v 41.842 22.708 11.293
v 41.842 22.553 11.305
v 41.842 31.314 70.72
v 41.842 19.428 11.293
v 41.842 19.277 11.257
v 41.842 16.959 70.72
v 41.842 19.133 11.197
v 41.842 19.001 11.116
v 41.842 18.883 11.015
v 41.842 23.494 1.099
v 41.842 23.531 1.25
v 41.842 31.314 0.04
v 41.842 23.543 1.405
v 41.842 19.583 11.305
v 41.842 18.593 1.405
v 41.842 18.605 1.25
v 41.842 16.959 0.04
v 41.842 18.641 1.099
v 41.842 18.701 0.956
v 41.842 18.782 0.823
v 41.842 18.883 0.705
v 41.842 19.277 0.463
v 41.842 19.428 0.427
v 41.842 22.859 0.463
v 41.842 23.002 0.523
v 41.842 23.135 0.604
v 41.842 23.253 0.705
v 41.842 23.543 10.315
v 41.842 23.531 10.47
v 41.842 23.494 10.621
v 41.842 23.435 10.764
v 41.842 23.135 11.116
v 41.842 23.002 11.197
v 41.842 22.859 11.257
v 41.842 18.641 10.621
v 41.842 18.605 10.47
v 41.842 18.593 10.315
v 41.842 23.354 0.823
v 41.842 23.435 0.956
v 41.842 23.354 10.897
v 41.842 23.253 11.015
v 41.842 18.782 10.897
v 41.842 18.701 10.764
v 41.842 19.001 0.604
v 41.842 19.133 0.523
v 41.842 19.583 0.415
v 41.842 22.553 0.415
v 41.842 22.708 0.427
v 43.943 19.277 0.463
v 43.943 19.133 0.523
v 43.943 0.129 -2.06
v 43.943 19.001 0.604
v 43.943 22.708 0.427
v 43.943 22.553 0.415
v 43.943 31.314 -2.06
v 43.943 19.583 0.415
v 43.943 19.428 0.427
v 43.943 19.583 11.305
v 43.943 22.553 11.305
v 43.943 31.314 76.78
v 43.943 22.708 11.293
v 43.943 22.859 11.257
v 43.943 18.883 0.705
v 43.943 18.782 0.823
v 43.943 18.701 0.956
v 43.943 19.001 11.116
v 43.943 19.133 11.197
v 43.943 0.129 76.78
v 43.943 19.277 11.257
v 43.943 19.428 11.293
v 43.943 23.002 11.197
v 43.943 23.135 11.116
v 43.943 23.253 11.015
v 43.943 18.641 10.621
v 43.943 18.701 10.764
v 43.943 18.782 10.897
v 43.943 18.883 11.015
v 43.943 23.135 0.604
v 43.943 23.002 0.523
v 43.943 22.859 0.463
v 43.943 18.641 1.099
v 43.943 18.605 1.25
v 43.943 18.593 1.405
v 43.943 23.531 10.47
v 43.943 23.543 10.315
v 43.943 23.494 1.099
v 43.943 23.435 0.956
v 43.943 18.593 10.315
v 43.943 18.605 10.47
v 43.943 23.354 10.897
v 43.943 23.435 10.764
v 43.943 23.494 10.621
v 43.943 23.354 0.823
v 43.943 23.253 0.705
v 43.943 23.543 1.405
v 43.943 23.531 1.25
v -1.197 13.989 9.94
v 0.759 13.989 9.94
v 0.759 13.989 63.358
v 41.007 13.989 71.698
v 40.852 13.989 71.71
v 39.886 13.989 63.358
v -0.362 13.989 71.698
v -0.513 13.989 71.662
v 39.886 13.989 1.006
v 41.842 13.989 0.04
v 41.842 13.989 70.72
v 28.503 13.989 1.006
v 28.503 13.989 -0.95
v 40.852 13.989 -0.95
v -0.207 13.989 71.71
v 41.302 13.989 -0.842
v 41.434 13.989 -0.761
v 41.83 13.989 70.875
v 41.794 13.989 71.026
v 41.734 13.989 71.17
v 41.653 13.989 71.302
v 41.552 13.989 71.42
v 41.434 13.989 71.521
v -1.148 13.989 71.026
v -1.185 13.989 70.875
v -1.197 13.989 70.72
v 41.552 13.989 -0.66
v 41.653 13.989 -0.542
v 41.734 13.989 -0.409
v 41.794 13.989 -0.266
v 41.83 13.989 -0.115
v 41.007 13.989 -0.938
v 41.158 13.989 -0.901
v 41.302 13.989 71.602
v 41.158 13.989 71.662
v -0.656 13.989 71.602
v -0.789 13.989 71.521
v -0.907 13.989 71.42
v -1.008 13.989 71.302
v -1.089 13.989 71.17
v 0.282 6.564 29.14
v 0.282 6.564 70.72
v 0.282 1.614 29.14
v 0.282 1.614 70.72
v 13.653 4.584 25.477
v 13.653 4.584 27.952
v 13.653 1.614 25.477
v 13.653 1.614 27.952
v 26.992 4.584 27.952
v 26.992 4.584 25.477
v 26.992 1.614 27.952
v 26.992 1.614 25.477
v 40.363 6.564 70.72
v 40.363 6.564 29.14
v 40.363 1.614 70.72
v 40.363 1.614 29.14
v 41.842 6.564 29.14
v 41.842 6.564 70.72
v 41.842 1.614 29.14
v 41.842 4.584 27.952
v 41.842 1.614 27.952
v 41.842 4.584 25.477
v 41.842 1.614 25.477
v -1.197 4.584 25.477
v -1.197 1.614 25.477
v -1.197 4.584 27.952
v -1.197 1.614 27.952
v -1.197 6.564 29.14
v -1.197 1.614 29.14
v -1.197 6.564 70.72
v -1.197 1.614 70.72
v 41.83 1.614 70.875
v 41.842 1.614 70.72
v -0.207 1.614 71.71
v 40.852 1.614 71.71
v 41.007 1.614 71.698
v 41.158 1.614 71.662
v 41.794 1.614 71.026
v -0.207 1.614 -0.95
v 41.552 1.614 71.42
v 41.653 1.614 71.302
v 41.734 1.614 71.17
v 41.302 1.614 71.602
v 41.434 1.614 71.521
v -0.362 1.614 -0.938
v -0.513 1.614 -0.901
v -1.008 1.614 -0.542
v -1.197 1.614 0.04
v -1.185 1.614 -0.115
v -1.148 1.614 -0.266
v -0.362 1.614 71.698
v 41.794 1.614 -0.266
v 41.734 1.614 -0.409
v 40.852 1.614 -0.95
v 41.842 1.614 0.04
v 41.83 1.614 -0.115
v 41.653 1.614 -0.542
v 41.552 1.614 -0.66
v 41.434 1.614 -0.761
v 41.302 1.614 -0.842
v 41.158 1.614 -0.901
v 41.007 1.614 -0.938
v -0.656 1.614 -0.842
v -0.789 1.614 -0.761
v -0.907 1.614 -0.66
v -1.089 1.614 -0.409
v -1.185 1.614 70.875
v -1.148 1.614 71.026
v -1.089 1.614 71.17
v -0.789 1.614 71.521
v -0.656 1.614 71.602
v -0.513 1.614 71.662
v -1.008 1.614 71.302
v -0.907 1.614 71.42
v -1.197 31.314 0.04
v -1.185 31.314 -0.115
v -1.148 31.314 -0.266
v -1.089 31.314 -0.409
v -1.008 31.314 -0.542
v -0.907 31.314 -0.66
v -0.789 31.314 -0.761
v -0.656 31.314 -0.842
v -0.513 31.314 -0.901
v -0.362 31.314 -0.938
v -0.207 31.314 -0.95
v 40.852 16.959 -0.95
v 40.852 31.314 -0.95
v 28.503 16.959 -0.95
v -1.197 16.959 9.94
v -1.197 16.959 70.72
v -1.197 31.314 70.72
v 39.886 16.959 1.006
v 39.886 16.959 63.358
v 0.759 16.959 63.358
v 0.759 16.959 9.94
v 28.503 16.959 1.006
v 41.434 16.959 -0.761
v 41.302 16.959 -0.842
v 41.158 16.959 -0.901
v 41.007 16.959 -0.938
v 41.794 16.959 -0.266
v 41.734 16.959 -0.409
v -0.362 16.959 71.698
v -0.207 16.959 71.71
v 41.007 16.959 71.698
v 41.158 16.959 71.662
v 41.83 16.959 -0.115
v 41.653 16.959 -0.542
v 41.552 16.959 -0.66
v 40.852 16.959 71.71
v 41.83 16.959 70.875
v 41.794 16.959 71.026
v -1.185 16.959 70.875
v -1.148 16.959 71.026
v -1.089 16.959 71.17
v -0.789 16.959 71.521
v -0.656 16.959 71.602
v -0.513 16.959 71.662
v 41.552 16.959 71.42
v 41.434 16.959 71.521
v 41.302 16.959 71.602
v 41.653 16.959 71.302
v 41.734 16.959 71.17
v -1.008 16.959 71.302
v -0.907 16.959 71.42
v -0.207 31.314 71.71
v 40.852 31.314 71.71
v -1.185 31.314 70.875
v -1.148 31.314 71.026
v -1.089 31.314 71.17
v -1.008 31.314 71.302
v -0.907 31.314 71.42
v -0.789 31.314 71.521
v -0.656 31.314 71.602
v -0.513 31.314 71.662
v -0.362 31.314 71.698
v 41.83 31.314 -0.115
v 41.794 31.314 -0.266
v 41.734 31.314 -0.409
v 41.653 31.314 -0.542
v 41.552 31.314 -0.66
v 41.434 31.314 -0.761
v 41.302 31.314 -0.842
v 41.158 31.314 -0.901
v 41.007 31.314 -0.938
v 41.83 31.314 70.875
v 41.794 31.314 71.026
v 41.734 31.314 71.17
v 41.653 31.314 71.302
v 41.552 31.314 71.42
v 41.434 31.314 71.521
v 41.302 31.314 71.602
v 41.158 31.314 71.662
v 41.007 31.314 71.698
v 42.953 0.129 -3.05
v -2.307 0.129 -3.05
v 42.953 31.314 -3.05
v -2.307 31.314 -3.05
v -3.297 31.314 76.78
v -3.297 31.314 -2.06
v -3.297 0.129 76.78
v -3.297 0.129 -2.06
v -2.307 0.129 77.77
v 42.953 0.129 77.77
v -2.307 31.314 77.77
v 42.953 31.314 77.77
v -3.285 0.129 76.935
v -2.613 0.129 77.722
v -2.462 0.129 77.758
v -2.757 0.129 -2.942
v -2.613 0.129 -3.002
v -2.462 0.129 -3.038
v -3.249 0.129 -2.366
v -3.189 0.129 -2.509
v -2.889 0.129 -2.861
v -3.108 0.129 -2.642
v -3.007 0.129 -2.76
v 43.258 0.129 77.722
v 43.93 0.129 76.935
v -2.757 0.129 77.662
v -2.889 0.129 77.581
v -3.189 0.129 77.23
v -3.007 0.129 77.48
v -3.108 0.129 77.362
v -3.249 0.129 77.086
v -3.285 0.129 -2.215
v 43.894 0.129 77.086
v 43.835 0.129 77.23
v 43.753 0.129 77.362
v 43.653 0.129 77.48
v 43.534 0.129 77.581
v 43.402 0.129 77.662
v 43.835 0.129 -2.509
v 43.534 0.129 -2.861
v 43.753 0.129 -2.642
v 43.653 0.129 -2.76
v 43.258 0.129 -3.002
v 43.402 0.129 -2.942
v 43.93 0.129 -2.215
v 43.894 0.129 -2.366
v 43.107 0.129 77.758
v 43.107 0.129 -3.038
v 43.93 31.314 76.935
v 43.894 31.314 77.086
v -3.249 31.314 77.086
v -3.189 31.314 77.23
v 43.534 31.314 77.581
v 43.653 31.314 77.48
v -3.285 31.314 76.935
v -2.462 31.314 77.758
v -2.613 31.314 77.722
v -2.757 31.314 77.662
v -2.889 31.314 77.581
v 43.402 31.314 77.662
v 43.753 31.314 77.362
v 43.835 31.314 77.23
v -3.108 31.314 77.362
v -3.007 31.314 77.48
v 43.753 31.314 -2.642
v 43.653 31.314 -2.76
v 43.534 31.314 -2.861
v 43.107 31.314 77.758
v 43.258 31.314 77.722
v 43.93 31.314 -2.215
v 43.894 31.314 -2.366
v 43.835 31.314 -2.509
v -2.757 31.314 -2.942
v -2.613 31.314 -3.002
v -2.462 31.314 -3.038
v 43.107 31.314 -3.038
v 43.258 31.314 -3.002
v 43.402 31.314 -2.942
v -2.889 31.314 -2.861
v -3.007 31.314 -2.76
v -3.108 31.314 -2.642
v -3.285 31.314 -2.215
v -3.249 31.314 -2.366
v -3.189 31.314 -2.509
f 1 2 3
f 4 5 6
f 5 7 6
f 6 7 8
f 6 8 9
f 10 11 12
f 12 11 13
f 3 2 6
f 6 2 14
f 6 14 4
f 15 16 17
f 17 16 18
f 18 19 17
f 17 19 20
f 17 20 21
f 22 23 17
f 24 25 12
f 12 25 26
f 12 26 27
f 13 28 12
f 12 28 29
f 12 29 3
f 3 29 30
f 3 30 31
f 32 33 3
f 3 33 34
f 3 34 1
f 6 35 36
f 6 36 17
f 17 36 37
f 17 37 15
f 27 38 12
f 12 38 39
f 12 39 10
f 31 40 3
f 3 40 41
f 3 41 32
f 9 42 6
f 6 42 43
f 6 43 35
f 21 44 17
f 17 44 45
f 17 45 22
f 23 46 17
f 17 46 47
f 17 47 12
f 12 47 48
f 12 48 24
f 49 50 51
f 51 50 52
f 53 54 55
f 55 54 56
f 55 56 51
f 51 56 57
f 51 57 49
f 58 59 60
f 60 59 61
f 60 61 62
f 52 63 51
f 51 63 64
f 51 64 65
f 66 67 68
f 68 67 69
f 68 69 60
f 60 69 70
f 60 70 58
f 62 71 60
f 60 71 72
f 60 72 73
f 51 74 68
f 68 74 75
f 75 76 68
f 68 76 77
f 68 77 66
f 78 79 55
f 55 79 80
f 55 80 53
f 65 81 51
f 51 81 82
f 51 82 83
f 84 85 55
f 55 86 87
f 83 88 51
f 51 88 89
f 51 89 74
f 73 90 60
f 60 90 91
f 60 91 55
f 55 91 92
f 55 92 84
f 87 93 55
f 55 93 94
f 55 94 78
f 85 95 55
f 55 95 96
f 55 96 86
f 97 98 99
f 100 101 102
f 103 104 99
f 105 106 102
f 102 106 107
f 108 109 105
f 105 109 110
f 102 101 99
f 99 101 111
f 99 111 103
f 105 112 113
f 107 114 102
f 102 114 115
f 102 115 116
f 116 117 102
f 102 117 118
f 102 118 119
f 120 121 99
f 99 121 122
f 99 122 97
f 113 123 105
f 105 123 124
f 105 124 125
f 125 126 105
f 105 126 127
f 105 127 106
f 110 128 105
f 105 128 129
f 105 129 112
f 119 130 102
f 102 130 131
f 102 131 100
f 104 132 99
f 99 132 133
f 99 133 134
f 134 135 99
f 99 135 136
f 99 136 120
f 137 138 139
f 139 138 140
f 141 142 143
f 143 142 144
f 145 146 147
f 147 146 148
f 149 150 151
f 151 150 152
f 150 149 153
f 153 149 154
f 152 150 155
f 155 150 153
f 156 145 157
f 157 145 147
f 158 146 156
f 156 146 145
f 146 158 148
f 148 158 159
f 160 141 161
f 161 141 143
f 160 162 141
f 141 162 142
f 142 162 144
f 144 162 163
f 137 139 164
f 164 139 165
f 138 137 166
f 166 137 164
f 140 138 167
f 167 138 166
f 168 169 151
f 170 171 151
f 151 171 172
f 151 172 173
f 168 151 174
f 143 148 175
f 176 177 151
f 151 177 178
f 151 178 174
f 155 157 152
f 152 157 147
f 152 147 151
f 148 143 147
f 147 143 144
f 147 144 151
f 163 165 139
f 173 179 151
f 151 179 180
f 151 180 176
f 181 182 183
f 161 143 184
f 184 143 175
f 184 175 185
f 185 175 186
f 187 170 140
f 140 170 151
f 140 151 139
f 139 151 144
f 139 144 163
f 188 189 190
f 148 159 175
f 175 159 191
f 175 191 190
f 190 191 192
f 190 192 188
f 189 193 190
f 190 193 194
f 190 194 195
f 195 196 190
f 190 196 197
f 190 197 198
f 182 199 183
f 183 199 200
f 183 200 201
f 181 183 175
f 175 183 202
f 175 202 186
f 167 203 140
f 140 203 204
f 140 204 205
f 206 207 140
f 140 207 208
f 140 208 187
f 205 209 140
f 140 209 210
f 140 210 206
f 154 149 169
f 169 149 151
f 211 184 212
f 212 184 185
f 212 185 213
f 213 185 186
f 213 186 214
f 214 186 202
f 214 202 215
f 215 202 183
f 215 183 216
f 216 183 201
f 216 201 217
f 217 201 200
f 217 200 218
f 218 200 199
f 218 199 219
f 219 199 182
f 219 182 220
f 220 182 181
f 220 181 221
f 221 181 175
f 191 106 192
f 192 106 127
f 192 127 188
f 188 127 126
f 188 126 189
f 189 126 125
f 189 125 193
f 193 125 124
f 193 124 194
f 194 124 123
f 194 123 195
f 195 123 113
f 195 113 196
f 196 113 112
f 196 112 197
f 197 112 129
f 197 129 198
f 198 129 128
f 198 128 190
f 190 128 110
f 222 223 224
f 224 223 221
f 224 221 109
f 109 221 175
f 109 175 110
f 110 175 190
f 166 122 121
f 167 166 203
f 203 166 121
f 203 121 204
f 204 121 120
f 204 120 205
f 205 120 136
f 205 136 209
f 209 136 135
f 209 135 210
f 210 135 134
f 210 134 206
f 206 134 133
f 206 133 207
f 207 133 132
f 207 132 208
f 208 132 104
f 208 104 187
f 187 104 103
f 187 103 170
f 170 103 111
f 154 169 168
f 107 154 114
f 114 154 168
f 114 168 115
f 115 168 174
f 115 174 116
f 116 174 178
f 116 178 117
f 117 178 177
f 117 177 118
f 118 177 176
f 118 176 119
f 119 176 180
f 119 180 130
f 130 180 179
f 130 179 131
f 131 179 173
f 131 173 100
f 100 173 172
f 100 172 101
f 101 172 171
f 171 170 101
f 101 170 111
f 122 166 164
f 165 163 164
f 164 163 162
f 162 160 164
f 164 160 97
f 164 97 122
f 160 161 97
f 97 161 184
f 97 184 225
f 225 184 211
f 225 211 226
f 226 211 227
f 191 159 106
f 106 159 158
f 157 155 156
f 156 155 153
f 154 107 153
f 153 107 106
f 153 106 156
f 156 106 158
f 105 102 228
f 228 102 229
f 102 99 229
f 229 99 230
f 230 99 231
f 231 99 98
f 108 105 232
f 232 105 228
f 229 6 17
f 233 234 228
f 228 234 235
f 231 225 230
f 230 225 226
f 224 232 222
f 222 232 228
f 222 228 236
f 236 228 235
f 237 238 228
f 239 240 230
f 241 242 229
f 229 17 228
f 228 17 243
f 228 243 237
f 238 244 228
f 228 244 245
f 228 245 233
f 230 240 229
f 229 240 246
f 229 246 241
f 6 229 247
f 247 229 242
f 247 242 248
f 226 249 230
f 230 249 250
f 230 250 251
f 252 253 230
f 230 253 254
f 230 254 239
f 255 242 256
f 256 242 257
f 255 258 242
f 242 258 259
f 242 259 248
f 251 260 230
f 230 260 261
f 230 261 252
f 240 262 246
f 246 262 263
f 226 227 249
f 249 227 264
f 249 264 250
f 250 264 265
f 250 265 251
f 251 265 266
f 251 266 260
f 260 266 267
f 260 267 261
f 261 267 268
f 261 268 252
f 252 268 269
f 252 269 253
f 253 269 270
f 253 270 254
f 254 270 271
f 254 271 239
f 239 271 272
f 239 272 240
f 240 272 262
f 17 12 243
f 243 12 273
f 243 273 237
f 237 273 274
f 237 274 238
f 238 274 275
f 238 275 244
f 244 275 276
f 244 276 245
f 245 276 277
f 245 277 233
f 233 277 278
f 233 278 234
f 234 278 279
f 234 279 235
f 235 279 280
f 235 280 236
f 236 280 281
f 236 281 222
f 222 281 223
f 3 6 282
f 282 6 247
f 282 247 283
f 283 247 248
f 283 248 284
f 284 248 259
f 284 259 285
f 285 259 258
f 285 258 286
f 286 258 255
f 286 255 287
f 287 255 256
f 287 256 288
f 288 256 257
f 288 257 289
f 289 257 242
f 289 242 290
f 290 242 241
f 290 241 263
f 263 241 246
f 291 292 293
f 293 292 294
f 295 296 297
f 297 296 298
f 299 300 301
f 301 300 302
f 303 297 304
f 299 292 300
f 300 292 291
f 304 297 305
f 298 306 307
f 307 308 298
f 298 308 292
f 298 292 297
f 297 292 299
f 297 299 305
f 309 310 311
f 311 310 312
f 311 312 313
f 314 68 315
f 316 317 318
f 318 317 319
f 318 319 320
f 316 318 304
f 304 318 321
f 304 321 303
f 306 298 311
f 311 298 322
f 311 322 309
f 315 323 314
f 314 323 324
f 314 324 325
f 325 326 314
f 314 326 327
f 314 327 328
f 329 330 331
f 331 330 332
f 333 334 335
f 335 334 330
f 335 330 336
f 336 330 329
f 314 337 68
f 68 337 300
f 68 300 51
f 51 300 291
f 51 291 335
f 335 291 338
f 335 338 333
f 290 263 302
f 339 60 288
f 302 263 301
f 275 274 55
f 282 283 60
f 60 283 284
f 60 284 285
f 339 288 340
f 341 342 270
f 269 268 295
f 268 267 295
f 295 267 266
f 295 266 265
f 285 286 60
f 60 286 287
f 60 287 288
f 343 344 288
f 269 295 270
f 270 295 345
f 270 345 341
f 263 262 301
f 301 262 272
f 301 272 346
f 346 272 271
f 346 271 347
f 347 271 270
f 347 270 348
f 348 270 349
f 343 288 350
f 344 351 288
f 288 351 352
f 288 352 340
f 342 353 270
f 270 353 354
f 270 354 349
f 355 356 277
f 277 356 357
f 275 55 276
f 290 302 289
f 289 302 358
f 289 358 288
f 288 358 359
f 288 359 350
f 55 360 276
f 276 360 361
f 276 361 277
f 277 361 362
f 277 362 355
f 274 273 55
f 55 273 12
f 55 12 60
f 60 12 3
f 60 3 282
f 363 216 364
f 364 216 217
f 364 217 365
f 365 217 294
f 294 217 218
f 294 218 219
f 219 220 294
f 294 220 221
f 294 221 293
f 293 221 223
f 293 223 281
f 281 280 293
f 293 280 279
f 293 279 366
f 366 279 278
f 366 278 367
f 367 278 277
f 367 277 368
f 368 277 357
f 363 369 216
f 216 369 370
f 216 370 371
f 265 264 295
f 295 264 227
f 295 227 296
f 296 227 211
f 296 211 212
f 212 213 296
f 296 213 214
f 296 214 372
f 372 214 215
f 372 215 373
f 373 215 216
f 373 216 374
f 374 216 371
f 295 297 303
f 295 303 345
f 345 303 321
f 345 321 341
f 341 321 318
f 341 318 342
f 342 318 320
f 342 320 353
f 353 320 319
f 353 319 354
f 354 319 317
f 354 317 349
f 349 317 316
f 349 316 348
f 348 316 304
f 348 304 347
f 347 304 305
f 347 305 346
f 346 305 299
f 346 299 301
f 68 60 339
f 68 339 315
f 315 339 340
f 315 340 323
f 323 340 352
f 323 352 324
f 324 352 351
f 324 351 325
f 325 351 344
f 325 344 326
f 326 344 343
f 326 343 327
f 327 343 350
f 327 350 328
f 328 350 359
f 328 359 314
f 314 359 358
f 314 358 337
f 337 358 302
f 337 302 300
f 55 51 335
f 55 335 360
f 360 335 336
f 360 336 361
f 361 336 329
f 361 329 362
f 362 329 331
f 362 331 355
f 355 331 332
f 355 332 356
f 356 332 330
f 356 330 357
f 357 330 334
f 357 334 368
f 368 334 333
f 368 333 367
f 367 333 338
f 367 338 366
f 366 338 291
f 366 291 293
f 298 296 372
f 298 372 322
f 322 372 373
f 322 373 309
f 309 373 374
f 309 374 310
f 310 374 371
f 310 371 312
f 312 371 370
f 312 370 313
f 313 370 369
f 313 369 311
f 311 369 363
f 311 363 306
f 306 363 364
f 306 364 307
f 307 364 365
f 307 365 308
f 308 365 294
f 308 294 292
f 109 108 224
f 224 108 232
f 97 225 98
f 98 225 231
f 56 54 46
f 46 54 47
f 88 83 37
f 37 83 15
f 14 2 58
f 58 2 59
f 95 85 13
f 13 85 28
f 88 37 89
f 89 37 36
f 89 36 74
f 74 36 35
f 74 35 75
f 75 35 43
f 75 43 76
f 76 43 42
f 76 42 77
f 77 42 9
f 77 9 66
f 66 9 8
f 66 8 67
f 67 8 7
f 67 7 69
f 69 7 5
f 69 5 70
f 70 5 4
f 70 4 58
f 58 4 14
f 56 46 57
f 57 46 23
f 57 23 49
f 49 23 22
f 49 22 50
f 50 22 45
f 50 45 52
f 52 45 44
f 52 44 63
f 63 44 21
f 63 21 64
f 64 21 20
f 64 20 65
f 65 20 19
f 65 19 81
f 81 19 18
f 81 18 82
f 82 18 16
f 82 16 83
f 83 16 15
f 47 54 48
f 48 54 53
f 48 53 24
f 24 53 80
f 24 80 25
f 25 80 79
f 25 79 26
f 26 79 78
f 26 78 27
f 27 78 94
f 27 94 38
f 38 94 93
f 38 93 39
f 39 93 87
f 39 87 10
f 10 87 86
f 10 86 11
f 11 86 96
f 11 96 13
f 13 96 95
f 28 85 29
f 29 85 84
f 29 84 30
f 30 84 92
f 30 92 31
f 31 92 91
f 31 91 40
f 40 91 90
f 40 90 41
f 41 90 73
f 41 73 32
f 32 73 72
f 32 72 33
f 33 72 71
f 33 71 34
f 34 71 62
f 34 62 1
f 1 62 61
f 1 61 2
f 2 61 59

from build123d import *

# Parameters (mm, degrees)
PCB_DIMENSIONS_W    = 47.716732244
PCB_DIMENSIONS_H    = 81.636732244
BOSS_EXTRUDE3_DEPTH = 1.5
SKETCH5_W           = 47.716732244
SKETCH5_H           = 81.636732244
SKETCH5_W_2         = 43.474091557
SKETCH5_H_2         = 73.394091557
BOSS_EXTRUDE5_DEPTH = 30
FILLET1_R           = 1
SKETCH9_W           = 1.93805105
SKETCH9_H           = 42
SKETCH9_W_2         = 1.938051049
BOSS_EXTRUDE6_DEPTH = 5
SKETCH14_W          = 15
SKETCH14_H          = 2.5
BOSS_EXTRUDE7_DEPTH = 3
SKETCH15_W          = 79.636732244
SKETCH15_H          = 3
BOSS_EXTRUDE8_DEPTH = 46
SKETCH17_W          = 39.522771214
SKETCH17_H          = 62.982276128
CUT_EXTRUDE1_DEPTH  = 3
CUT_EXTRUDE2_DEPTH  = 3
SKETCH19_W          = 11
SKETCH19_H          = 5
CUT_EXTRUDE3_DEPTH  = 10
FILLET2_R           = 1
SCALE1_SCALE        = 0.99


with BuildPart() as part:
    # PCB Dimensions → Boss-Extrude3 (new body)
    with BuildSketch(Plane(origin=(0, 0, 0), x_dir=(1, 0, 0), z_dir=(0, 1, 0))):
        with Locations((20.322832216, -37.282832216)):
            Rectangle(PCB_DIMENSIONS_W, PCB_DIMENSIONS_H)
    extrude(amount=BOSS_EXTRUDE3_DEPTH)

    # Sketch5 → Boss-Extrude5 (add)
    with BuildSketch(Plane(origin=(0, 1.5, 0), x_dir=(1, 0, 0), z_dir=(0, 1, 0))):
        with Locations((20.322832216, -37.282832216)):
            Rectangle(SKETCH5_W, SKETCH5_H)
        with Locations((20.322832217, -35.282832217)):
            Rectangle(SKETCH5_W_2, SKETCH5_H_2, mode=Mode.SUBTRACT)
    extrude(amount=BOSS_EXTRUDE5_DEPTH)

    # Fillet1
    fillet1_edges = [part.edges().sort_by_distance(p)[0] for p in [
        (42.059877995, 16.5, -1.414213562),
        (-1.414213562, 16.5, -1.414213562),
        (-1.414213562, 16.5, 71.979877995),
        (42.059877995, 16.5, 71.979877995),
        (44.181198338, 15.75, 78.101198338),
        (-3.535533906, 15.75, 78.101198338),
        (-3.535533906, 15.75, -3.535533906),
        (44.181198338, 15.75, -3.535533906),
    ]]
    fillet(fillet1_edges, radius=FILLET1_R)

    # Sketch9 → Boss-Extrude6 (add)
    with BuildSketch(Plane(origin=(0, 1.5, 0), x_dir=(1, 0, 0), z_dir=(0, 1, 0))):
        with Locations((-0.88911969, -49.979881394)):
            Rectangle(SKETCH9_W, SKETCH9_H)
        with Locations((41.534784122, -49.979881394)):
            Rectangle(SKETCH9_W_2, SKETCH9_H)
    extrude(amount=BOSS_EXTRUDE6_DEPTH)

    # Sketch14 → Boss-Extrude7 (add)
    with BuildSketch(Plane(origin=(0, 1.5, 0), x_dir=(1, 0, 0), z_dir=(0, 1, 0))):
        with Locations((6.085786438, -26.529881394)):
            Rectangle(SKETCH14_W, SKETCH14_H)
        with Locations((34.559877995, -26.529881394)):
            Rectangle(SKETCH14_W, SKETCH14_H)
    extrude(amount=BOSS_EXTRUDE7_DEPTH)

    # Sketch15 → Boss-Extrude8 (add)
    with BuildSketch(Plane(origin=(44.181198338, 0, 0), x_dir=(0, 0, -1), z_dir=(1, 0, 0))):
        with Locations((-37.282832216, 15.5)):
            Rectangle(SKETCH15_W, SKETCH15_H)
    extrude(amount=-BOSS_EXTRUDE8_DEPTH)

    # Sketch17 → Cut-Extrude1 (cut)
    with BuildSketch(Plane(origin=(0, 17, 0), x_dir=(1, 0, 0), z_dir=(0, 1, 0))):
        with Locations((20.322832216, -32.052584673)):
            Rectangle(SKETCH17_W, SKETCH17_H)
    extrude(amount=-CUT_EXTRUDE1_DEPTH, mode=Mode.SUBTRACT)

    # Sketch18 → Cut-Extrude2 (cut)
    with BuildSketch(Plane(origin=(0, 17, 0), x_dir=(1, 0, 0), z_dir=(0, 1, 0))):
        with BuildLine():
            Line((-1.414213562, -9.585786438), (28.585786438, -9.585786438))
            Line((28.585786438, -9.585786438), (28.585786438, 1.414213562))
            Line((28.585786438, 1.414213562), (-0.414213562, 1.414213562))
            ThreePointArc((-0.414213562, 1.414213562), (-1.121320344, 1.121320344), (-1.414213562, 0.414213562))
            Line((-1.414213562, 0.414213562), (-1.414213562, -9.585786438))
        make_face()
    extrude(amount=-CUT_EXTRUDE2_DEPTH, mode=Mode.SUBTRACT)

    # Sketch19 → Cut-Extrude3 (cut)
    with BuildSketch(Plane(origin=(44.181198338, 0, 0), x_dir=(0, 0, -1), z_dir=(1, 0, 0))):
        with Locations((-5.464466094, 21.15)):
            Rectangle(SKETCH19_W, SKETCH19_H)
    extrude(amount=-CUT_EXTRUDE3_DEPTH, mode=Mode.SUBTRACT)

    # Fillet2
    fillet2_edges = [part.edges().sort_by_distance(p)[0] for p in [
        (43.120538167, 23.65, -0.035533906),
        (43.120538167, 18.65, -0.035533906),
        (43.120538167, 18.65, 10.964466094),
        (43.120538167, 23.65, 10.964466094),
    ]]
    fillet(fillet2_edges, radius=FILLET2_R)


with BuildPart() as part_1:
    # Scale1: scaled about (20.311867002, 12.9416955, 45.018687776)
    add(part.part.scale(SCALE1_SCALE).moved(Location((0.20311867, 0.129416955, 0.450186878))))


solid = part_1.part
